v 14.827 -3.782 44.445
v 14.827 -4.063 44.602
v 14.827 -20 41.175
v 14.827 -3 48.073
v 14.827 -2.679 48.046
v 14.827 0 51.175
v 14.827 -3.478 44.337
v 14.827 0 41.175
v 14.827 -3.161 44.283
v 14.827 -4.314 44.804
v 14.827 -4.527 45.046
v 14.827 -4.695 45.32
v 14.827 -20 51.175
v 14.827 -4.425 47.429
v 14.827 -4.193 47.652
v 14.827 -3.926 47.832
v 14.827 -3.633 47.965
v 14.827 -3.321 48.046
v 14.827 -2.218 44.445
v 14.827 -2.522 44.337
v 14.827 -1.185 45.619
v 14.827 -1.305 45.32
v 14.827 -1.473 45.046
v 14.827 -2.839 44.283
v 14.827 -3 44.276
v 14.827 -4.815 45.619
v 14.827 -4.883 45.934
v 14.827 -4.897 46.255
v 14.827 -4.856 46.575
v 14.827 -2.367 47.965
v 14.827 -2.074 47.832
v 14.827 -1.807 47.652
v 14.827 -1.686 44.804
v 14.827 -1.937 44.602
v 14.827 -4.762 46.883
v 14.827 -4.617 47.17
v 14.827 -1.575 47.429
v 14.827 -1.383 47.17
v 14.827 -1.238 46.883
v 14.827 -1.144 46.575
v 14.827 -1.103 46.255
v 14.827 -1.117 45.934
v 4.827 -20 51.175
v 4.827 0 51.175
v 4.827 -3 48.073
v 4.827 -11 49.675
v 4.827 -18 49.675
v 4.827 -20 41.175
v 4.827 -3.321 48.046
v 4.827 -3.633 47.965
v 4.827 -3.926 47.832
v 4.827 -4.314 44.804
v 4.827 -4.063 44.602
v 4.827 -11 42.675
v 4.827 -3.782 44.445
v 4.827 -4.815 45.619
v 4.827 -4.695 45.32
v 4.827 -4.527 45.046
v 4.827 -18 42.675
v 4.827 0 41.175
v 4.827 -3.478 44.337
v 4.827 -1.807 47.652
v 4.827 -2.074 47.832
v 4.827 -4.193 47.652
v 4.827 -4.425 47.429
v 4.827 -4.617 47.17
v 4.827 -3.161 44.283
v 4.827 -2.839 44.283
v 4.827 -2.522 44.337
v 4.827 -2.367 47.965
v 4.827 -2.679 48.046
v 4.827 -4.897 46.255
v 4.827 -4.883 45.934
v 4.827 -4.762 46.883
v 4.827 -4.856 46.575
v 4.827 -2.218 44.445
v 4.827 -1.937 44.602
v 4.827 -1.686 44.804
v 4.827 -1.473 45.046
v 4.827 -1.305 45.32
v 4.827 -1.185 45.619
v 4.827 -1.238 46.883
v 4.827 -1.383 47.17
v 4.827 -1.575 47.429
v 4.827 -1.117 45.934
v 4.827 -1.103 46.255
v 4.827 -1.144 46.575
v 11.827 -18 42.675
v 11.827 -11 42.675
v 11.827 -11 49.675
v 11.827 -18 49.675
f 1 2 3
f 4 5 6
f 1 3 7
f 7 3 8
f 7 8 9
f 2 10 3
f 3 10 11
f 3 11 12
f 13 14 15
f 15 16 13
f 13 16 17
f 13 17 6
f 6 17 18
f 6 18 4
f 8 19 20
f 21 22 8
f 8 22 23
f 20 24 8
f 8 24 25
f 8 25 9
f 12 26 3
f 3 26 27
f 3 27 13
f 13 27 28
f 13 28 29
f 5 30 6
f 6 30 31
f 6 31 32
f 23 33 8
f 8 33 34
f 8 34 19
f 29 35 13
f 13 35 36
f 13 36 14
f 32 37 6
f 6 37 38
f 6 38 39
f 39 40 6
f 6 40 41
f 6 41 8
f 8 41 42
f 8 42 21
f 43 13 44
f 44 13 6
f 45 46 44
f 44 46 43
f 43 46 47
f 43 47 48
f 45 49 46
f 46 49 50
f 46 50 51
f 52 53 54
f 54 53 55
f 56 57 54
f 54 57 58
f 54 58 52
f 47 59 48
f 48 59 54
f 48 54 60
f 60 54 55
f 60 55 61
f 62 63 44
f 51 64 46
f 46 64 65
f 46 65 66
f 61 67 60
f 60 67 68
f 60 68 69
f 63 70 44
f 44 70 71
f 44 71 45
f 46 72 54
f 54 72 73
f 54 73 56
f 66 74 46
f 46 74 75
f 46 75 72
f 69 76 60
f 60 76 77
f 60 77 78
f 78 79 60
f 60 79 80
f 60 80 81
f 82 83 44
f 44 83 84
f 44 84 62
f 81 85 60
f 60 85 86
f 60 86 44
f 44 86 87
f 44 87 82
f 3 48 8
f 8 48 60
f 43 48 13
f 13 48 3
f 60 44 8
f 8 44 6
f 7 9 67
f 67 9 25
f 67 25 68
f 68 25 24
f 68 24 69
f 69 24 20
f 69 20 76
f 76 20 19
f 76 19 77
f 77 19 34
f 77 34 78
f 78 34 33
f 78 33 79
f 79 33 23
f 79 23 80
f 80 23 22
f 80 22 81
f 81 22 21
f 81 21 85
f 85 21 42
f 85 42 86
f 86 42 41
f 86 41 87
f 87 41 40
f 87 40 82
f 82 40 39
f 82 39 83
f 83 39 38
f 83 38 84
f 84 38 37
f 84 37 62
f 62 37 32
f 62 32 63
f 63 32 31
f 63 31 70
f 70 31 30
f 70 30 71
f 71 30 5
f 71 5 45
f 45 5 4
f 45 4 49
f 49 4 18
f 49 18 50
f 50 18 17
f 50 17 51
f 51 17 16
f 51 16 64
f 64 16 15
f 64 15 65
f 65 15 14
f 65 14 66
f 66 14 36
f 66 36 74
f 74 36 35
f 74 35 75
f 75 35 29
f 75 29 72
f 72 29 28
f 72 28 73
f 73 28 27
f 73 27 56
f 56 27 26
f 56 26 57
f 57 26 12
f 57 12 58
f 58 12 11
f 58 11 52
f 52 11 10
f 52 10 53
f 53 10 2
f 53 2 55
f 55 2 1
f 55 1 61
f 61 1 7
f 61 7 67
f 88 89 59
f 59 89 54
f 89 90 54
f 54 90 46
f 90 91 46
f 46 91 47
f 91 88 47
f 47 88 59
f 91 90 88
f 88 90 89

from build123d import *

# Parameters (mm, degrees)
SKETCH1_W                 = 10
SKETCH1_H                 = 10
BOSS_EXTRUDE1_DEPTH       = 20
F_6_CLEARANCE_HOLE1_D     = 3.7973
F_6_CLEARANCE_HOLE1_DEPTH = 17
F_6_CLEARANCE_HOLE1_TIP   = 1.140824014
SKETCH2_W                 = 7
SKETCH2_H                 = 7
CUT_EXTRUDE1_DEPTH        = 7


with BuildPart() as part:
    # Sketch1 → Boss-Extrude1 (new body)
    with BuildSketch(Plane(origin=(0, 0, 0), x_dir=(1, 0, 0), z_dir=(0, 1, 0))):
        with Locations((9.826837964, -46.174693154)):
            Rectangle(SKETCH1_W, SKETCH1_H)
    extrude(amount=-BOSS_EXTRUDE1_DEPTH)

    # #6 Clearance Hole1
    with Locations(Plane(origin=(4.826837964, -3, 46.174693154), x_dir=(0, 0, -1), z_dir=(-1, 0, 0))):
        with Locations((0, 0)):
            Hole(F_6_CLEARANCE_HOLE1_D / 2, depth=F_6_CLEARANCE_HOLE1_DEPTH)
            with Locations((0, 0, -(F_6_CLEARANCE_HOLE1_DEPTH + F_6_CLEARANCE_HOLE1_TIP / 2))):  # 118° drill point
                Cone(0, F_6_CLEARANCE_HOLE1_D / 2, F_6_CLEARANCE_HOLE1_TIP, mode=Mode.SUBTRACT)

    # Sketch2 → Cut-Extrude1 (cut)
    with BuildSketch(Plane.ZY.offset(-4.826837964)):
        with Locations((46.174693154, -14.5)):
            Rectangle(SKETCH2_W, SKETCH2_H)
    extrude(amount=-CUT_EXTRUDE1_DEPTH, mode=Mode.SUBTRACT)


solid = part.part
